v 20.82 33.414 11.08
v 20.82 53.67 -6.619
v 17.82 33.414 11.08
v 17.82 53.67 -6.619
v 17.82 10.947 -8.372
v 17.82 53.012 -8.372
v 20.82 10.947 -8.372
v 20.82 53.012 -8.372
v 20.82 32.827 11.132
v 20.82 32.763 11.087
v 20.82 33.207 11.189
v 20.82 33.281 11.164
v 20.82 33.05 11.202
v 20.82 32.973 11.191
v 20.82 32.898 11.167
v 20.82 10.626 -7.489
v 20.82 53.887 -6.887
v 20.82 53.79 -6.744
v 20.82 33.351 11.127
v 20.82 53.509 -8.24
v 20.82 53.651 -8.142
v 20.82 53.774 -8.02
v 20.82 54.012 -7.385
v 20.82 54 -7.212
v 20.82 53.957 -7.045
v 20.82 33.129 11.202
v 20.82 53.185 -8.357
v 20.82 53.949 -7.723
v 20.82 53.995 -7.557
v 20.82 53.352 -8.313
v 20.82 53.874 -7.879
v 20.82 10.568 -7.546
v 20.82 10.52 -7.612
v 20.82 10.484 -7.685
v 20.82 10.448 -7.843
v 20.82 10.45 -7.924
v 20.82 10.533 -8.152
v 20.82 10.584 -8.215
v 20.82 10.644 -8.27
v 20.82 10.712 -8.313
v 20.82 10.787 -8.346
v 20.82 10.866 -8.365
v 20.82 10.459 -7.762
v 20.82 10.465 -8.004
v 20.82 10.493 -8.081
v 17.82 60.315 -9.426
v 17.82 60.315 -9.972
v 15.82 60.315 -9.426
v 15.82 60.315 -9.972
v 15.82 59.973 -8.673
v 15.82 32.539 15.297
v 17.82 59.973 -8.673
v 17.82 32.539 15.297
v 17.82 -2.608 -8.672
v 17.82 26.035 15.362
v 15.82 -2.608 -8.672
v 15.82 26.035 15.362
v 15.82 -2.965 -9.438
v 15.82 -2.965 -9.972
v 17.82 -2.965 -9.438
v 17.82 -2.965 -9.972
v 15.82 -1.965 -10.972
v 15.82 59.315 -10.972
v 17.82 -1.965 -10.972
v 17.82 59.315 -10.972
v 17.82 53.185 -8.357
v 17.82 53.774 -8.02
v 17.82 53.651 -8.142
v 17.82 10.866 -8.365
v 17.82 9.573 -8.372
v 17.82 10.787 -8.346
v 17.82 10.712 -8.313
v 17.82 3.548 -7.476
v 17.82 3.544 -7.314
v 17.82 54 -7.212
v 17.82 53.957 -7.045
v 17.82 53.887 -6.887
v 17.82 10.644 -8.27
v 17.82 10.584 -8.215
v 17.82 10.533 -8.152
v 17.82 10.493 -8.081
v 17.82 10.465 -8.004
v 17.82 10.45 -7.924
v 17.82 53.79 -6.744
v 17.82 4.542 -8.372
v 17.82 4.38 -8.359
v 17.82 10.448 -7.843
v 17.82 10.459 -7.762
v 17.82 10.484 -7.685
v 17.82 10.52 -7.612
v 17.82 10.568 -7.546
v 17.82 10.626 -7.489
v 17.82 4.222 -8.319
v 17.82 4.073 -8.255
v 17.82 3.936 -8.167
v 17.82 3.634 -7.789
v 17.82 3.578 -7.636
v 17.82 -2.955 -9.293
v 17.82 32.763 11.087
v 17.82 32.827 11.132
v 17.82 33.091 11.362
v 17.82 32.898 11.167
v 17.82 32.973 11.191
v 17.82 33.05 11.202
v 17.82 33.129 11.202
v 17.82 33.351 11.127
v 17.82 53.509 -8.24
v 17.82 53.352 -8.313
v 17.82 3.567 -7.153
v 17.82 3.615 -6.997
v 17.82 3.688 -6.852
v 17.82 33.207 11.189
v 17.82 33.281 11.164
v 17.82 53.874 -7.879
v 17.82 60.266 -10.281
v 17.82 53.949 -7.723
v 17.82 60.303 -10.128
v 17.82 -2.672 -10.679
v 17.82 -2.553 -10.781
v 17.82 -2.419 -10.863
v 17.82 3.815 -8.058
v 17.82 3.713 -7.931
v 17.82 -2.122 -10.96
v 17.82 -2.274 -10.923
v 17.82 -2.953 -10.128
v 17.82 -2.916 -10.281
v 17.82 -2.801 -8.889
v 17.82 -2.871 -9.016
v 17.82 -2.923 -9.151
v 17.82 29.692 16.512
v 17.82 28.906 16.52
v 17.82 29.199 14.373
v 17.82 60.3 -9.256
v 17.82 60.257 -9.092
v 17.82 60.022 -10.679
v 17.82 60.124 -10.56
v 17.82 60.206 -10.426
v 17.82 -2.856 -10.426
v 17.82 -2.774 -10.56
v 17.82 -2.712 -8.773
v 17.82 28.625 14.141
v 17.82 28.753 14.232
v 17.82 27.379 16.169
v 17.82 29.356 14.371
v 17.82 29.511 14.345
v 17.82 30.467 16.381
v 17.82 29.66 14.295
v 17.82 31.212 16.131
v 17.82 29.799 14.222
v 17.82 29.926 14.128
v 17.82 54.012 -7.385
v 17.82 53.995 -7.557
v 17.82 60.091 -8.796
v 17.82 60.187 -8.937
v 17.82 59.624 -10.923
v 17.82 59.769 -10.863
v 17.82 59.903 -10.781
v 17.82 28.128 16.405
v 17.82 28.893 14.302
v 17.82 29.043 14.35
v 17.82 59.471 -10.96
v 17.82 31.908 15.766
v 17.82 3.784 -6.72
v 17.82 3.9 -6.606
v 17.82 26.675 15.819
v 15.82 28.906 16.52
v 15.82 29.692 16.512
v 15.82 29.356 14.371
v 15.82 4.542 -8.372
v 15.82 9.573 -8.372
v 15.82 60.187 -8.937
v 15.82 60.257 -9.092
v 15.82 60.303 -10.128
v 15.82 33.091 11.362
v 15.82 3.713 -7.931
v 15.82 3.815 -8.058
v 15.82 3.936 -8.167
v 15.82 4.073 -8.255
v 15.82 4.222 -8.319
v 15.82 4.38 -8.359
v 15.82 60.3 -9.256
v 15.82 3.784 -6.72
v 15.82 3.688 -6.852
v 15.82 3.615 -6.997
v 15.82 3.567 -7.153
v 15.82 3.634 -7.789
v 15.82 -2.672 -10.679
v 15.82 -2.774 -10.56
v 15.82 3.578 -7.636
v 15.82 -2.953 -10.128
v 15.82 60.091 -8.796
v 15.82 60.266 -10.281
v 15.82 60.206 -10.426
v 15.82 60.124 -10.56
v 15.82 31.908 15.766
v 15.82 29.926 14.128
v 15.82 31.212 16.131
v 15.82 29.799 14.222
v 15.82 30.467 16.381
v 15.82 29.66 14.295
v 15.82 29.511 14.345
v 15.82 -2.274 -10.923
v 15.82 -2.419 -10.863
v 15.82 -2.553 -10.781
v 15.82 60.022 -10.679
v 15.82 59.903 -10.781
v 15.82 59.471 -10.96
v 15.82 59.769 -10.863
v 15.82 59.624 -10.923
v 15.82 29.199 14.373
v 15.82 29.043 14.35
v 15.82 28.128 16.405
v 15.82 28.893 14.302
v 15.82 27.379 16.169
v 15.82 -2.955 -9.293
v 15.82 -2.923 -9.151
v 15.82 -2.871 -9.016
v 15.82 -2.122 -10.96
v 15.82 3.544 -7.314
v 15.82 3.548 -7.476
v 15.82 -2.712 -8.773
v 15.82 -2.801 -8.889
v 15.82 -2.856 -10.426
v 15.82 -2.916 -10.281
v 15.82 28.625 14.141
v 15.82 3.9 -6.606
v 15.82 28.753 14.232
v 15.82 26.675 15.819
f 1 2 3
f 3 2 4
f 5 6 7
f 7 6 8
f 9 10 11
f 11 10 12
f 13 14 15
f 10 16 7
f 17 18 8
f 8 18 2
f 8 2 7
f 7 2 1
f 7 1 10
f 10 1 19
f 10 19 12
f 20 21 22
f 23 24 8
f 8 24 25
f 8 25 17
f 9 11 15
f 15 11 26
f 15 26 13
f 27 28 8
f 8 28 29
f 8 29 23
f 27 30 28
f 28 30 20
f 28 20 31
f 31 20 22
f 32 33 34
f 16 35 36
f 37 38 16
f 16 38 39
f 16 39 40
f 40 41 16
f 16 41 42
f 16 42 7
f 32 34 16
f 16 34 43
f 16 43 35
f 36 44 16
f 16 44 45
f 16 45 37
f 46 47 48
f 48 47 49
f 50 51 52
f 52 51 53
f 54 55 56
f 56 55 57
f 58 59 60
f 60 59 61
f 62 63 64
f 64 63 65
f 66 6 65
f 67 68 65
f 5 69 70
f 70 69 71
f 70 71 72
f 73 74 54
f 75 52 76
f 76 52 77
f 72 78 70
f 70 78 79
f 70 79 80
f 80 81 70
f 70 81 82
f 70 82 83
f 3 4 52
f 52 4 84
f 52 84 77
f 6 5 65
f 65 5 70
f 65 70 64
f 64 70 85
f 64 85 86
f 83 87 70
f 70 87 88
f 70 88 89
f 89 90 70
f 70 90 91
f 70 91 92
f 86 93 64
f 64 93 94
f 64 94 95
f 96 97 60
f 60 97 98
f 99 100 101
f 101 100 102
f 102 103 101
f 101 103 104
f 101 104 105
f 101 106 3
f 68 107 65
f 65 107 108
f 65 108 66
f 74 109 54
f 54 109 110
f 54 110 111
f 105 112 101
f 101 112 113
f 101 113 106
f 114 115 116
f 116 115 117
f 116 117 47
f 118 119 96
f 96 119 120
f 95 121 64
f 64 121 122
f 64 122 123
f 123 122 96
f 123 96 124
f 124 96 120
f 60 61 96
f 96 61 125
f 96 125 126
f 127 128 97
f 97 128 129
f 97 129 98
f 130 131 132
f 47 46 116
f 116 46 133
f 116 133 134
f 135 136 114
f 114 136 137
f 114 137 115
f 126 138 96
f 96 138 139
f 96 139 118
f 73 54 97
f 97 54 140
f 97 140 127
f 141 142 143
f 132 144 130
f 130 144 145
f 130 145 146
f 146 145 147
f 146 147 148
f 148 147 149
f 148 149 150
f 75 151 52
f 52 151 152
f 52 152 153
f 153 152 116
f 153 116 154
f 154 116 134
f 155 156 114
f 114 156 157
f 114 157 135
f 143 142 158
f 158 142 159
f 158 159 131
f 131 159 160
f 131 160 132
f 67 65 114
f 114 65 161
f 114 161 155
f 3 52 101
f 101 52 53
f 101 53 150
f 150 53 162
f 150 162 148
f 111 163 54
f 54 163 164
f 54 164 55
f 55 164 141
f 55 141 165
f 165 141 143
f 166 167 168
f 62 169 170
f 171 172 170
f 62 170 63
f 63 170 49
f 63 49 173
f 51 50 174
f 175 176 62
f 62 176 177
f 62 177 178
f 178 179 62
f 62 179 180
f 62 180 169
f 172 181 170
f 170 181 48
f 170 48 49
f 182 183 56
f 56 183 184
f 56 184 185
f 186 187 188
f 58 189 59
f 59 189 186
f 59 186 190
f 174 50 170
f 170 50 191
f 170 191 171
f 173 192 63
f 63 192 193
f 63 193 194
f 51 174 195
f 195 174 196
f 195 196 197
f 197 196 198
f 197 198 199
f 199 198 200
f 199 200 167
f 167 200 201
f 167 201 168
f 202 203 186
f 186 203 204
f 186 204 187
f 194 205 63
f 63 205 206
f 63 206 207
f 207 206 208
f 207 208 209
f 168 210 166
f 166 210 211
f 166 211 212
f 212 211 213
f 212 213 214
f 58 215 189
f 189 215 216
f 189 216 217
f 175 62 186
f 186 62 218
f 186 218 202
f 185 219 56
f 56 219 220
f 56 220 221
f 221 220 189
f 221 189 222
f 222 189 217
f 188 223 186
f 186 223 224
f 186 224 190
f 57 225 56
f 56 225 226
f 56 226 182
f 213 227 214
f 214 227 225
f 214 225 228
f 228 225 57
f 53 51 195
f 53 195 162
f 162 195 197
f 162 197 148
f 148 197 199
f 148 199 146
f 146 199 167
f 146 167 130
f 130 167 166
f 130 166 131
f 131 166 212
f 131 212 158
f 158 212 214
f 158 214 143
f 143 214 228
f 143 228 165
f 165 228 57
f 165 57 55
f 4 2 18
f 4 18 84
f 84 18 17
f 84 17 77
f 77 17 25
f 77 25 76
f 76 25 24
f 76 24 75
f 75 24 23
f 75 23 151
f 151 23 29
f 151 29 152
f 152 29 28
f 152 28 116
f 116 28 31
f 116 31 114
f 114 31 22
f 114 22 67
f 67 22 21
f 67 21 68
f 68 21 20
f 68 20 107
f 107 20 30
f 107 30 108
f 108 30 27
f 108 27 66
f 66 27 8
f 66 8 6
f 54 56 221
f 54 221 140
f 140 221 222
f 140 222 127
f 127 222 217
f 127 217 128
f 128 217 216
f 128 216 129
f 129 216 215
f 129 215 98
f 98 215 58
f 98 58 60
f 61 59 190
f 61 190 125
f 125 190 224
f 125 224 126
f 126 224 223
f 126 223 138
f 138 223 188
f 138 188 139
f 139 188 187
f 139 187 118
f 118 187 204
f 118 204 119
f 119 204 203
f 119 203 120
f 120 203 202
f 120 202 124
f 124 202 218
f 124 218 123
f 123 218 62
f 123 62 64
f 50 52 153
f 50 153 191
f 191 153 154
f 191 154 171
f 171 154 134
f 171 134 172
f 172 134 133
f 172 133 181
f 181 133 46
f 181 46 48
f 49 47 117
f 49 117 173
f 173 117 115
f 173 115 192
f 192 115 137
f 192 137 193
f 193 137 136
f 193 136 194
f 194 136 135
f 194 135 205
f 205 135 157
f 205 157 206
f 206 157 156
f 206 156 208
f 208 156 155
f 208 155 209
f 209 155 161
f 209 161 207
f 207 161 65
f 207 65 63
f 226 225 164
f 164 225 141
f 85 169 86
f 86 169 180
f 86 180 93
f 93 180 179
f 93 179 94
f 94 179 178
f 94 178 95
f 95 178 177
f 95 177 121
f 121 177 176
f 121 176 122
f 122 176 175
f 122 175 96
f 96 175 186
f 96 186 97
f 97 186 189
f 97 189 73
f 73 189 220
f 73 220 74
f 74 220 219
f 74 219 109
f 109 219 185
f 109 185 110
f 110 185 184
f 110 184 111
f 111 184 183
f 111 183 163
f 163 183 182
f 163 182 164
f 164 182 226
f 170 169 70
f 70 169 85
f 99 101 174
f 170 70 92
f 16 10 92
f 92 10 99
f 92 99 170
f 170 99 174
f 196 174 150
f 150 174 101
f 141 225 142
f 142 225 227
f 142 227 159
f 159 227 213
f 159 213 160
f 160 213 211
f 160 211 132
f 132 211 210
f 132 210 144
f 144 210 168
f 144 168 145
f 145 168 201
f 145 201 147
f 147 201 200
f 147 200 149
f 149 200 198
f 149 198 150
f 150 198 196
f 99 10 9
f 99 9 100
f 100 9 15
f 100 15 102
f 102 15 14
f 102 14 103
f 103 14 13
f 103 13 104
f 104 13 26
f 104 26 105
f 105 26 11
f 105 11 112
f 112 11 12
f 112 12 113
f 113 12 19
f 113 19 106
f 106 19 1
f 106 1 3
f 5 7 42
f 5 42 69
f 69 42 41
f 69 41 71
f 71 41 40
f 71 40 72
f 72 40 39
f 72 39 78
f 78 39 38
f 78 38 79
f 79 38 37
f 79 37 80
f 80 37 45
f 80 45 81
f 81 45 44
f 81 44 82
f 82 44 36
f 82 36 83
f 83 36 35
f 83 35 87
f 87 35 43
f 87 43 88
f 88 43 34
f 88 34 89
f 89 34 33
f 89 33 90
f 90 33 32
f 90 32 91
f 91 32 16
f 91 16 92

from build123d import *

# Parameters (mm, degrees)
BOSS_EXTRUDE1_DEPTH = 5
BOSS_EXTRUDE2_START = -5
BOSS_EXTRUDE2_DEPTH = 2
FILLET1_R           = 5
FILLET2_R           = 1
FILLET3_R           = 1
CUT_EXTRUDE1_DEPTH  = 63.739091162
FILLET4_R           = 0.5


with BuildPart() as part:
    # Sketch32 → Boss-Extrude1 (new body)
    with BuildSketch(Plane(origin=(0, 0, 0), x_dir=(0, 0, -1), z_dir=(1, 0, 0))):
        Polygon((-23.663373299, 32.245792092), (-0.6, 4.759934105), (-0.6, 58.641752364), align=None)
    extrude(amount=-BOSS_EXTRUDE1_DEPTH)

    # Sketch33 → Boss-Extrude2 (add)
    with BuildSketch(Plane(origin=(0, 0, 0), x_dir=(0, 0, -1), z_dir=(1, 0, 0)).offset(BOSS_EXTRUDE2_START)):
        Polygon((0, 0), (2, 0), (2, 63.28), (0, 63.28), (-27.086136094, 32.28), align=None)
    extrude(amount=BOSS_EXTRUDE2_DEPTH)

    # Fillet1
    fillet1_edges = [part.edges().sort_by_distance(p)[0] for p in [
        (-4, 32.28, 27.086136094),
    ]]
    fillet(fillet1_edges, radius=FILLET1_R)

    # Fillet2
    fillet2_edges = [part.edges().sort_by_distance(p)[0] for p in [
        (-1.5, 4.759934105, 0.6),
        (-1.5, 58.641752364, 0.6),
        (-1.5, 32.245792092, 23.663373299),
    ]]
    fillet(fillet2_edges, radius=FILLET2_R)

    # Fillet3
    fillet3_edges = [part.edges().sort_by_distance(p)[0] for p in [
        (-4, 63.28, -2),
        (-4, 63.28, 0),
        (-4, 0, 0),
        (-4, 0, -2),
    ]]
    fillet(fillet3_edges, radius=FILLET3_R)


with BuildPart() as part_1:
    # Body-Move/Copy1: moved
    add(part.part.moved(Location((20.819939299, -2.965088501, -8.971960843))))

    # Sketch34 → Cut-Extrude1 (cut, through all)
    with BuildSketch(Plane.ZY.offset(-15.819939299)):
        with BuildLine():
            Line((14.128009591, 29.925516449), (11.361881222, 33.091341915))
            Line((11.361881222, 33.091341915), (-8.371960843, 9.573464739))
            Line((-8.371960843, 9.573464739), (-8.371960843, 4.542323024))
            ThreePointArc((-8.371960843, 4.542323024), (-7.713980986, 3.602630403), (-6.6059164, 3.899535414))
            Line((-6.6059164, 3.899535414), (13.428952617, 27.776162543))
            Line((13.428952617, 27.776162543), (14.14100967, 28.624759093))
            ThreePointArc((14.14100967, 28.624759093), (14.374915288, 29.277540443), (14.128009591, 29.925516449))
        make_face()
    extrude(amount=-CUT_EXTRUDE1_DEPTH, mode=Mode.SUBTRACT)

    # Fillet4
    fillet4_edges = [part_1.edges().sort_by_distance(p)[0] for p in [
        (19.319939299, 33.091341915, 11.361881222),
        (19.319939299, 9.573464739, -8.371960843),
    ]]
    fillet(fillet4_edges, radius=FILLET4_R)


solid = part_1.part
